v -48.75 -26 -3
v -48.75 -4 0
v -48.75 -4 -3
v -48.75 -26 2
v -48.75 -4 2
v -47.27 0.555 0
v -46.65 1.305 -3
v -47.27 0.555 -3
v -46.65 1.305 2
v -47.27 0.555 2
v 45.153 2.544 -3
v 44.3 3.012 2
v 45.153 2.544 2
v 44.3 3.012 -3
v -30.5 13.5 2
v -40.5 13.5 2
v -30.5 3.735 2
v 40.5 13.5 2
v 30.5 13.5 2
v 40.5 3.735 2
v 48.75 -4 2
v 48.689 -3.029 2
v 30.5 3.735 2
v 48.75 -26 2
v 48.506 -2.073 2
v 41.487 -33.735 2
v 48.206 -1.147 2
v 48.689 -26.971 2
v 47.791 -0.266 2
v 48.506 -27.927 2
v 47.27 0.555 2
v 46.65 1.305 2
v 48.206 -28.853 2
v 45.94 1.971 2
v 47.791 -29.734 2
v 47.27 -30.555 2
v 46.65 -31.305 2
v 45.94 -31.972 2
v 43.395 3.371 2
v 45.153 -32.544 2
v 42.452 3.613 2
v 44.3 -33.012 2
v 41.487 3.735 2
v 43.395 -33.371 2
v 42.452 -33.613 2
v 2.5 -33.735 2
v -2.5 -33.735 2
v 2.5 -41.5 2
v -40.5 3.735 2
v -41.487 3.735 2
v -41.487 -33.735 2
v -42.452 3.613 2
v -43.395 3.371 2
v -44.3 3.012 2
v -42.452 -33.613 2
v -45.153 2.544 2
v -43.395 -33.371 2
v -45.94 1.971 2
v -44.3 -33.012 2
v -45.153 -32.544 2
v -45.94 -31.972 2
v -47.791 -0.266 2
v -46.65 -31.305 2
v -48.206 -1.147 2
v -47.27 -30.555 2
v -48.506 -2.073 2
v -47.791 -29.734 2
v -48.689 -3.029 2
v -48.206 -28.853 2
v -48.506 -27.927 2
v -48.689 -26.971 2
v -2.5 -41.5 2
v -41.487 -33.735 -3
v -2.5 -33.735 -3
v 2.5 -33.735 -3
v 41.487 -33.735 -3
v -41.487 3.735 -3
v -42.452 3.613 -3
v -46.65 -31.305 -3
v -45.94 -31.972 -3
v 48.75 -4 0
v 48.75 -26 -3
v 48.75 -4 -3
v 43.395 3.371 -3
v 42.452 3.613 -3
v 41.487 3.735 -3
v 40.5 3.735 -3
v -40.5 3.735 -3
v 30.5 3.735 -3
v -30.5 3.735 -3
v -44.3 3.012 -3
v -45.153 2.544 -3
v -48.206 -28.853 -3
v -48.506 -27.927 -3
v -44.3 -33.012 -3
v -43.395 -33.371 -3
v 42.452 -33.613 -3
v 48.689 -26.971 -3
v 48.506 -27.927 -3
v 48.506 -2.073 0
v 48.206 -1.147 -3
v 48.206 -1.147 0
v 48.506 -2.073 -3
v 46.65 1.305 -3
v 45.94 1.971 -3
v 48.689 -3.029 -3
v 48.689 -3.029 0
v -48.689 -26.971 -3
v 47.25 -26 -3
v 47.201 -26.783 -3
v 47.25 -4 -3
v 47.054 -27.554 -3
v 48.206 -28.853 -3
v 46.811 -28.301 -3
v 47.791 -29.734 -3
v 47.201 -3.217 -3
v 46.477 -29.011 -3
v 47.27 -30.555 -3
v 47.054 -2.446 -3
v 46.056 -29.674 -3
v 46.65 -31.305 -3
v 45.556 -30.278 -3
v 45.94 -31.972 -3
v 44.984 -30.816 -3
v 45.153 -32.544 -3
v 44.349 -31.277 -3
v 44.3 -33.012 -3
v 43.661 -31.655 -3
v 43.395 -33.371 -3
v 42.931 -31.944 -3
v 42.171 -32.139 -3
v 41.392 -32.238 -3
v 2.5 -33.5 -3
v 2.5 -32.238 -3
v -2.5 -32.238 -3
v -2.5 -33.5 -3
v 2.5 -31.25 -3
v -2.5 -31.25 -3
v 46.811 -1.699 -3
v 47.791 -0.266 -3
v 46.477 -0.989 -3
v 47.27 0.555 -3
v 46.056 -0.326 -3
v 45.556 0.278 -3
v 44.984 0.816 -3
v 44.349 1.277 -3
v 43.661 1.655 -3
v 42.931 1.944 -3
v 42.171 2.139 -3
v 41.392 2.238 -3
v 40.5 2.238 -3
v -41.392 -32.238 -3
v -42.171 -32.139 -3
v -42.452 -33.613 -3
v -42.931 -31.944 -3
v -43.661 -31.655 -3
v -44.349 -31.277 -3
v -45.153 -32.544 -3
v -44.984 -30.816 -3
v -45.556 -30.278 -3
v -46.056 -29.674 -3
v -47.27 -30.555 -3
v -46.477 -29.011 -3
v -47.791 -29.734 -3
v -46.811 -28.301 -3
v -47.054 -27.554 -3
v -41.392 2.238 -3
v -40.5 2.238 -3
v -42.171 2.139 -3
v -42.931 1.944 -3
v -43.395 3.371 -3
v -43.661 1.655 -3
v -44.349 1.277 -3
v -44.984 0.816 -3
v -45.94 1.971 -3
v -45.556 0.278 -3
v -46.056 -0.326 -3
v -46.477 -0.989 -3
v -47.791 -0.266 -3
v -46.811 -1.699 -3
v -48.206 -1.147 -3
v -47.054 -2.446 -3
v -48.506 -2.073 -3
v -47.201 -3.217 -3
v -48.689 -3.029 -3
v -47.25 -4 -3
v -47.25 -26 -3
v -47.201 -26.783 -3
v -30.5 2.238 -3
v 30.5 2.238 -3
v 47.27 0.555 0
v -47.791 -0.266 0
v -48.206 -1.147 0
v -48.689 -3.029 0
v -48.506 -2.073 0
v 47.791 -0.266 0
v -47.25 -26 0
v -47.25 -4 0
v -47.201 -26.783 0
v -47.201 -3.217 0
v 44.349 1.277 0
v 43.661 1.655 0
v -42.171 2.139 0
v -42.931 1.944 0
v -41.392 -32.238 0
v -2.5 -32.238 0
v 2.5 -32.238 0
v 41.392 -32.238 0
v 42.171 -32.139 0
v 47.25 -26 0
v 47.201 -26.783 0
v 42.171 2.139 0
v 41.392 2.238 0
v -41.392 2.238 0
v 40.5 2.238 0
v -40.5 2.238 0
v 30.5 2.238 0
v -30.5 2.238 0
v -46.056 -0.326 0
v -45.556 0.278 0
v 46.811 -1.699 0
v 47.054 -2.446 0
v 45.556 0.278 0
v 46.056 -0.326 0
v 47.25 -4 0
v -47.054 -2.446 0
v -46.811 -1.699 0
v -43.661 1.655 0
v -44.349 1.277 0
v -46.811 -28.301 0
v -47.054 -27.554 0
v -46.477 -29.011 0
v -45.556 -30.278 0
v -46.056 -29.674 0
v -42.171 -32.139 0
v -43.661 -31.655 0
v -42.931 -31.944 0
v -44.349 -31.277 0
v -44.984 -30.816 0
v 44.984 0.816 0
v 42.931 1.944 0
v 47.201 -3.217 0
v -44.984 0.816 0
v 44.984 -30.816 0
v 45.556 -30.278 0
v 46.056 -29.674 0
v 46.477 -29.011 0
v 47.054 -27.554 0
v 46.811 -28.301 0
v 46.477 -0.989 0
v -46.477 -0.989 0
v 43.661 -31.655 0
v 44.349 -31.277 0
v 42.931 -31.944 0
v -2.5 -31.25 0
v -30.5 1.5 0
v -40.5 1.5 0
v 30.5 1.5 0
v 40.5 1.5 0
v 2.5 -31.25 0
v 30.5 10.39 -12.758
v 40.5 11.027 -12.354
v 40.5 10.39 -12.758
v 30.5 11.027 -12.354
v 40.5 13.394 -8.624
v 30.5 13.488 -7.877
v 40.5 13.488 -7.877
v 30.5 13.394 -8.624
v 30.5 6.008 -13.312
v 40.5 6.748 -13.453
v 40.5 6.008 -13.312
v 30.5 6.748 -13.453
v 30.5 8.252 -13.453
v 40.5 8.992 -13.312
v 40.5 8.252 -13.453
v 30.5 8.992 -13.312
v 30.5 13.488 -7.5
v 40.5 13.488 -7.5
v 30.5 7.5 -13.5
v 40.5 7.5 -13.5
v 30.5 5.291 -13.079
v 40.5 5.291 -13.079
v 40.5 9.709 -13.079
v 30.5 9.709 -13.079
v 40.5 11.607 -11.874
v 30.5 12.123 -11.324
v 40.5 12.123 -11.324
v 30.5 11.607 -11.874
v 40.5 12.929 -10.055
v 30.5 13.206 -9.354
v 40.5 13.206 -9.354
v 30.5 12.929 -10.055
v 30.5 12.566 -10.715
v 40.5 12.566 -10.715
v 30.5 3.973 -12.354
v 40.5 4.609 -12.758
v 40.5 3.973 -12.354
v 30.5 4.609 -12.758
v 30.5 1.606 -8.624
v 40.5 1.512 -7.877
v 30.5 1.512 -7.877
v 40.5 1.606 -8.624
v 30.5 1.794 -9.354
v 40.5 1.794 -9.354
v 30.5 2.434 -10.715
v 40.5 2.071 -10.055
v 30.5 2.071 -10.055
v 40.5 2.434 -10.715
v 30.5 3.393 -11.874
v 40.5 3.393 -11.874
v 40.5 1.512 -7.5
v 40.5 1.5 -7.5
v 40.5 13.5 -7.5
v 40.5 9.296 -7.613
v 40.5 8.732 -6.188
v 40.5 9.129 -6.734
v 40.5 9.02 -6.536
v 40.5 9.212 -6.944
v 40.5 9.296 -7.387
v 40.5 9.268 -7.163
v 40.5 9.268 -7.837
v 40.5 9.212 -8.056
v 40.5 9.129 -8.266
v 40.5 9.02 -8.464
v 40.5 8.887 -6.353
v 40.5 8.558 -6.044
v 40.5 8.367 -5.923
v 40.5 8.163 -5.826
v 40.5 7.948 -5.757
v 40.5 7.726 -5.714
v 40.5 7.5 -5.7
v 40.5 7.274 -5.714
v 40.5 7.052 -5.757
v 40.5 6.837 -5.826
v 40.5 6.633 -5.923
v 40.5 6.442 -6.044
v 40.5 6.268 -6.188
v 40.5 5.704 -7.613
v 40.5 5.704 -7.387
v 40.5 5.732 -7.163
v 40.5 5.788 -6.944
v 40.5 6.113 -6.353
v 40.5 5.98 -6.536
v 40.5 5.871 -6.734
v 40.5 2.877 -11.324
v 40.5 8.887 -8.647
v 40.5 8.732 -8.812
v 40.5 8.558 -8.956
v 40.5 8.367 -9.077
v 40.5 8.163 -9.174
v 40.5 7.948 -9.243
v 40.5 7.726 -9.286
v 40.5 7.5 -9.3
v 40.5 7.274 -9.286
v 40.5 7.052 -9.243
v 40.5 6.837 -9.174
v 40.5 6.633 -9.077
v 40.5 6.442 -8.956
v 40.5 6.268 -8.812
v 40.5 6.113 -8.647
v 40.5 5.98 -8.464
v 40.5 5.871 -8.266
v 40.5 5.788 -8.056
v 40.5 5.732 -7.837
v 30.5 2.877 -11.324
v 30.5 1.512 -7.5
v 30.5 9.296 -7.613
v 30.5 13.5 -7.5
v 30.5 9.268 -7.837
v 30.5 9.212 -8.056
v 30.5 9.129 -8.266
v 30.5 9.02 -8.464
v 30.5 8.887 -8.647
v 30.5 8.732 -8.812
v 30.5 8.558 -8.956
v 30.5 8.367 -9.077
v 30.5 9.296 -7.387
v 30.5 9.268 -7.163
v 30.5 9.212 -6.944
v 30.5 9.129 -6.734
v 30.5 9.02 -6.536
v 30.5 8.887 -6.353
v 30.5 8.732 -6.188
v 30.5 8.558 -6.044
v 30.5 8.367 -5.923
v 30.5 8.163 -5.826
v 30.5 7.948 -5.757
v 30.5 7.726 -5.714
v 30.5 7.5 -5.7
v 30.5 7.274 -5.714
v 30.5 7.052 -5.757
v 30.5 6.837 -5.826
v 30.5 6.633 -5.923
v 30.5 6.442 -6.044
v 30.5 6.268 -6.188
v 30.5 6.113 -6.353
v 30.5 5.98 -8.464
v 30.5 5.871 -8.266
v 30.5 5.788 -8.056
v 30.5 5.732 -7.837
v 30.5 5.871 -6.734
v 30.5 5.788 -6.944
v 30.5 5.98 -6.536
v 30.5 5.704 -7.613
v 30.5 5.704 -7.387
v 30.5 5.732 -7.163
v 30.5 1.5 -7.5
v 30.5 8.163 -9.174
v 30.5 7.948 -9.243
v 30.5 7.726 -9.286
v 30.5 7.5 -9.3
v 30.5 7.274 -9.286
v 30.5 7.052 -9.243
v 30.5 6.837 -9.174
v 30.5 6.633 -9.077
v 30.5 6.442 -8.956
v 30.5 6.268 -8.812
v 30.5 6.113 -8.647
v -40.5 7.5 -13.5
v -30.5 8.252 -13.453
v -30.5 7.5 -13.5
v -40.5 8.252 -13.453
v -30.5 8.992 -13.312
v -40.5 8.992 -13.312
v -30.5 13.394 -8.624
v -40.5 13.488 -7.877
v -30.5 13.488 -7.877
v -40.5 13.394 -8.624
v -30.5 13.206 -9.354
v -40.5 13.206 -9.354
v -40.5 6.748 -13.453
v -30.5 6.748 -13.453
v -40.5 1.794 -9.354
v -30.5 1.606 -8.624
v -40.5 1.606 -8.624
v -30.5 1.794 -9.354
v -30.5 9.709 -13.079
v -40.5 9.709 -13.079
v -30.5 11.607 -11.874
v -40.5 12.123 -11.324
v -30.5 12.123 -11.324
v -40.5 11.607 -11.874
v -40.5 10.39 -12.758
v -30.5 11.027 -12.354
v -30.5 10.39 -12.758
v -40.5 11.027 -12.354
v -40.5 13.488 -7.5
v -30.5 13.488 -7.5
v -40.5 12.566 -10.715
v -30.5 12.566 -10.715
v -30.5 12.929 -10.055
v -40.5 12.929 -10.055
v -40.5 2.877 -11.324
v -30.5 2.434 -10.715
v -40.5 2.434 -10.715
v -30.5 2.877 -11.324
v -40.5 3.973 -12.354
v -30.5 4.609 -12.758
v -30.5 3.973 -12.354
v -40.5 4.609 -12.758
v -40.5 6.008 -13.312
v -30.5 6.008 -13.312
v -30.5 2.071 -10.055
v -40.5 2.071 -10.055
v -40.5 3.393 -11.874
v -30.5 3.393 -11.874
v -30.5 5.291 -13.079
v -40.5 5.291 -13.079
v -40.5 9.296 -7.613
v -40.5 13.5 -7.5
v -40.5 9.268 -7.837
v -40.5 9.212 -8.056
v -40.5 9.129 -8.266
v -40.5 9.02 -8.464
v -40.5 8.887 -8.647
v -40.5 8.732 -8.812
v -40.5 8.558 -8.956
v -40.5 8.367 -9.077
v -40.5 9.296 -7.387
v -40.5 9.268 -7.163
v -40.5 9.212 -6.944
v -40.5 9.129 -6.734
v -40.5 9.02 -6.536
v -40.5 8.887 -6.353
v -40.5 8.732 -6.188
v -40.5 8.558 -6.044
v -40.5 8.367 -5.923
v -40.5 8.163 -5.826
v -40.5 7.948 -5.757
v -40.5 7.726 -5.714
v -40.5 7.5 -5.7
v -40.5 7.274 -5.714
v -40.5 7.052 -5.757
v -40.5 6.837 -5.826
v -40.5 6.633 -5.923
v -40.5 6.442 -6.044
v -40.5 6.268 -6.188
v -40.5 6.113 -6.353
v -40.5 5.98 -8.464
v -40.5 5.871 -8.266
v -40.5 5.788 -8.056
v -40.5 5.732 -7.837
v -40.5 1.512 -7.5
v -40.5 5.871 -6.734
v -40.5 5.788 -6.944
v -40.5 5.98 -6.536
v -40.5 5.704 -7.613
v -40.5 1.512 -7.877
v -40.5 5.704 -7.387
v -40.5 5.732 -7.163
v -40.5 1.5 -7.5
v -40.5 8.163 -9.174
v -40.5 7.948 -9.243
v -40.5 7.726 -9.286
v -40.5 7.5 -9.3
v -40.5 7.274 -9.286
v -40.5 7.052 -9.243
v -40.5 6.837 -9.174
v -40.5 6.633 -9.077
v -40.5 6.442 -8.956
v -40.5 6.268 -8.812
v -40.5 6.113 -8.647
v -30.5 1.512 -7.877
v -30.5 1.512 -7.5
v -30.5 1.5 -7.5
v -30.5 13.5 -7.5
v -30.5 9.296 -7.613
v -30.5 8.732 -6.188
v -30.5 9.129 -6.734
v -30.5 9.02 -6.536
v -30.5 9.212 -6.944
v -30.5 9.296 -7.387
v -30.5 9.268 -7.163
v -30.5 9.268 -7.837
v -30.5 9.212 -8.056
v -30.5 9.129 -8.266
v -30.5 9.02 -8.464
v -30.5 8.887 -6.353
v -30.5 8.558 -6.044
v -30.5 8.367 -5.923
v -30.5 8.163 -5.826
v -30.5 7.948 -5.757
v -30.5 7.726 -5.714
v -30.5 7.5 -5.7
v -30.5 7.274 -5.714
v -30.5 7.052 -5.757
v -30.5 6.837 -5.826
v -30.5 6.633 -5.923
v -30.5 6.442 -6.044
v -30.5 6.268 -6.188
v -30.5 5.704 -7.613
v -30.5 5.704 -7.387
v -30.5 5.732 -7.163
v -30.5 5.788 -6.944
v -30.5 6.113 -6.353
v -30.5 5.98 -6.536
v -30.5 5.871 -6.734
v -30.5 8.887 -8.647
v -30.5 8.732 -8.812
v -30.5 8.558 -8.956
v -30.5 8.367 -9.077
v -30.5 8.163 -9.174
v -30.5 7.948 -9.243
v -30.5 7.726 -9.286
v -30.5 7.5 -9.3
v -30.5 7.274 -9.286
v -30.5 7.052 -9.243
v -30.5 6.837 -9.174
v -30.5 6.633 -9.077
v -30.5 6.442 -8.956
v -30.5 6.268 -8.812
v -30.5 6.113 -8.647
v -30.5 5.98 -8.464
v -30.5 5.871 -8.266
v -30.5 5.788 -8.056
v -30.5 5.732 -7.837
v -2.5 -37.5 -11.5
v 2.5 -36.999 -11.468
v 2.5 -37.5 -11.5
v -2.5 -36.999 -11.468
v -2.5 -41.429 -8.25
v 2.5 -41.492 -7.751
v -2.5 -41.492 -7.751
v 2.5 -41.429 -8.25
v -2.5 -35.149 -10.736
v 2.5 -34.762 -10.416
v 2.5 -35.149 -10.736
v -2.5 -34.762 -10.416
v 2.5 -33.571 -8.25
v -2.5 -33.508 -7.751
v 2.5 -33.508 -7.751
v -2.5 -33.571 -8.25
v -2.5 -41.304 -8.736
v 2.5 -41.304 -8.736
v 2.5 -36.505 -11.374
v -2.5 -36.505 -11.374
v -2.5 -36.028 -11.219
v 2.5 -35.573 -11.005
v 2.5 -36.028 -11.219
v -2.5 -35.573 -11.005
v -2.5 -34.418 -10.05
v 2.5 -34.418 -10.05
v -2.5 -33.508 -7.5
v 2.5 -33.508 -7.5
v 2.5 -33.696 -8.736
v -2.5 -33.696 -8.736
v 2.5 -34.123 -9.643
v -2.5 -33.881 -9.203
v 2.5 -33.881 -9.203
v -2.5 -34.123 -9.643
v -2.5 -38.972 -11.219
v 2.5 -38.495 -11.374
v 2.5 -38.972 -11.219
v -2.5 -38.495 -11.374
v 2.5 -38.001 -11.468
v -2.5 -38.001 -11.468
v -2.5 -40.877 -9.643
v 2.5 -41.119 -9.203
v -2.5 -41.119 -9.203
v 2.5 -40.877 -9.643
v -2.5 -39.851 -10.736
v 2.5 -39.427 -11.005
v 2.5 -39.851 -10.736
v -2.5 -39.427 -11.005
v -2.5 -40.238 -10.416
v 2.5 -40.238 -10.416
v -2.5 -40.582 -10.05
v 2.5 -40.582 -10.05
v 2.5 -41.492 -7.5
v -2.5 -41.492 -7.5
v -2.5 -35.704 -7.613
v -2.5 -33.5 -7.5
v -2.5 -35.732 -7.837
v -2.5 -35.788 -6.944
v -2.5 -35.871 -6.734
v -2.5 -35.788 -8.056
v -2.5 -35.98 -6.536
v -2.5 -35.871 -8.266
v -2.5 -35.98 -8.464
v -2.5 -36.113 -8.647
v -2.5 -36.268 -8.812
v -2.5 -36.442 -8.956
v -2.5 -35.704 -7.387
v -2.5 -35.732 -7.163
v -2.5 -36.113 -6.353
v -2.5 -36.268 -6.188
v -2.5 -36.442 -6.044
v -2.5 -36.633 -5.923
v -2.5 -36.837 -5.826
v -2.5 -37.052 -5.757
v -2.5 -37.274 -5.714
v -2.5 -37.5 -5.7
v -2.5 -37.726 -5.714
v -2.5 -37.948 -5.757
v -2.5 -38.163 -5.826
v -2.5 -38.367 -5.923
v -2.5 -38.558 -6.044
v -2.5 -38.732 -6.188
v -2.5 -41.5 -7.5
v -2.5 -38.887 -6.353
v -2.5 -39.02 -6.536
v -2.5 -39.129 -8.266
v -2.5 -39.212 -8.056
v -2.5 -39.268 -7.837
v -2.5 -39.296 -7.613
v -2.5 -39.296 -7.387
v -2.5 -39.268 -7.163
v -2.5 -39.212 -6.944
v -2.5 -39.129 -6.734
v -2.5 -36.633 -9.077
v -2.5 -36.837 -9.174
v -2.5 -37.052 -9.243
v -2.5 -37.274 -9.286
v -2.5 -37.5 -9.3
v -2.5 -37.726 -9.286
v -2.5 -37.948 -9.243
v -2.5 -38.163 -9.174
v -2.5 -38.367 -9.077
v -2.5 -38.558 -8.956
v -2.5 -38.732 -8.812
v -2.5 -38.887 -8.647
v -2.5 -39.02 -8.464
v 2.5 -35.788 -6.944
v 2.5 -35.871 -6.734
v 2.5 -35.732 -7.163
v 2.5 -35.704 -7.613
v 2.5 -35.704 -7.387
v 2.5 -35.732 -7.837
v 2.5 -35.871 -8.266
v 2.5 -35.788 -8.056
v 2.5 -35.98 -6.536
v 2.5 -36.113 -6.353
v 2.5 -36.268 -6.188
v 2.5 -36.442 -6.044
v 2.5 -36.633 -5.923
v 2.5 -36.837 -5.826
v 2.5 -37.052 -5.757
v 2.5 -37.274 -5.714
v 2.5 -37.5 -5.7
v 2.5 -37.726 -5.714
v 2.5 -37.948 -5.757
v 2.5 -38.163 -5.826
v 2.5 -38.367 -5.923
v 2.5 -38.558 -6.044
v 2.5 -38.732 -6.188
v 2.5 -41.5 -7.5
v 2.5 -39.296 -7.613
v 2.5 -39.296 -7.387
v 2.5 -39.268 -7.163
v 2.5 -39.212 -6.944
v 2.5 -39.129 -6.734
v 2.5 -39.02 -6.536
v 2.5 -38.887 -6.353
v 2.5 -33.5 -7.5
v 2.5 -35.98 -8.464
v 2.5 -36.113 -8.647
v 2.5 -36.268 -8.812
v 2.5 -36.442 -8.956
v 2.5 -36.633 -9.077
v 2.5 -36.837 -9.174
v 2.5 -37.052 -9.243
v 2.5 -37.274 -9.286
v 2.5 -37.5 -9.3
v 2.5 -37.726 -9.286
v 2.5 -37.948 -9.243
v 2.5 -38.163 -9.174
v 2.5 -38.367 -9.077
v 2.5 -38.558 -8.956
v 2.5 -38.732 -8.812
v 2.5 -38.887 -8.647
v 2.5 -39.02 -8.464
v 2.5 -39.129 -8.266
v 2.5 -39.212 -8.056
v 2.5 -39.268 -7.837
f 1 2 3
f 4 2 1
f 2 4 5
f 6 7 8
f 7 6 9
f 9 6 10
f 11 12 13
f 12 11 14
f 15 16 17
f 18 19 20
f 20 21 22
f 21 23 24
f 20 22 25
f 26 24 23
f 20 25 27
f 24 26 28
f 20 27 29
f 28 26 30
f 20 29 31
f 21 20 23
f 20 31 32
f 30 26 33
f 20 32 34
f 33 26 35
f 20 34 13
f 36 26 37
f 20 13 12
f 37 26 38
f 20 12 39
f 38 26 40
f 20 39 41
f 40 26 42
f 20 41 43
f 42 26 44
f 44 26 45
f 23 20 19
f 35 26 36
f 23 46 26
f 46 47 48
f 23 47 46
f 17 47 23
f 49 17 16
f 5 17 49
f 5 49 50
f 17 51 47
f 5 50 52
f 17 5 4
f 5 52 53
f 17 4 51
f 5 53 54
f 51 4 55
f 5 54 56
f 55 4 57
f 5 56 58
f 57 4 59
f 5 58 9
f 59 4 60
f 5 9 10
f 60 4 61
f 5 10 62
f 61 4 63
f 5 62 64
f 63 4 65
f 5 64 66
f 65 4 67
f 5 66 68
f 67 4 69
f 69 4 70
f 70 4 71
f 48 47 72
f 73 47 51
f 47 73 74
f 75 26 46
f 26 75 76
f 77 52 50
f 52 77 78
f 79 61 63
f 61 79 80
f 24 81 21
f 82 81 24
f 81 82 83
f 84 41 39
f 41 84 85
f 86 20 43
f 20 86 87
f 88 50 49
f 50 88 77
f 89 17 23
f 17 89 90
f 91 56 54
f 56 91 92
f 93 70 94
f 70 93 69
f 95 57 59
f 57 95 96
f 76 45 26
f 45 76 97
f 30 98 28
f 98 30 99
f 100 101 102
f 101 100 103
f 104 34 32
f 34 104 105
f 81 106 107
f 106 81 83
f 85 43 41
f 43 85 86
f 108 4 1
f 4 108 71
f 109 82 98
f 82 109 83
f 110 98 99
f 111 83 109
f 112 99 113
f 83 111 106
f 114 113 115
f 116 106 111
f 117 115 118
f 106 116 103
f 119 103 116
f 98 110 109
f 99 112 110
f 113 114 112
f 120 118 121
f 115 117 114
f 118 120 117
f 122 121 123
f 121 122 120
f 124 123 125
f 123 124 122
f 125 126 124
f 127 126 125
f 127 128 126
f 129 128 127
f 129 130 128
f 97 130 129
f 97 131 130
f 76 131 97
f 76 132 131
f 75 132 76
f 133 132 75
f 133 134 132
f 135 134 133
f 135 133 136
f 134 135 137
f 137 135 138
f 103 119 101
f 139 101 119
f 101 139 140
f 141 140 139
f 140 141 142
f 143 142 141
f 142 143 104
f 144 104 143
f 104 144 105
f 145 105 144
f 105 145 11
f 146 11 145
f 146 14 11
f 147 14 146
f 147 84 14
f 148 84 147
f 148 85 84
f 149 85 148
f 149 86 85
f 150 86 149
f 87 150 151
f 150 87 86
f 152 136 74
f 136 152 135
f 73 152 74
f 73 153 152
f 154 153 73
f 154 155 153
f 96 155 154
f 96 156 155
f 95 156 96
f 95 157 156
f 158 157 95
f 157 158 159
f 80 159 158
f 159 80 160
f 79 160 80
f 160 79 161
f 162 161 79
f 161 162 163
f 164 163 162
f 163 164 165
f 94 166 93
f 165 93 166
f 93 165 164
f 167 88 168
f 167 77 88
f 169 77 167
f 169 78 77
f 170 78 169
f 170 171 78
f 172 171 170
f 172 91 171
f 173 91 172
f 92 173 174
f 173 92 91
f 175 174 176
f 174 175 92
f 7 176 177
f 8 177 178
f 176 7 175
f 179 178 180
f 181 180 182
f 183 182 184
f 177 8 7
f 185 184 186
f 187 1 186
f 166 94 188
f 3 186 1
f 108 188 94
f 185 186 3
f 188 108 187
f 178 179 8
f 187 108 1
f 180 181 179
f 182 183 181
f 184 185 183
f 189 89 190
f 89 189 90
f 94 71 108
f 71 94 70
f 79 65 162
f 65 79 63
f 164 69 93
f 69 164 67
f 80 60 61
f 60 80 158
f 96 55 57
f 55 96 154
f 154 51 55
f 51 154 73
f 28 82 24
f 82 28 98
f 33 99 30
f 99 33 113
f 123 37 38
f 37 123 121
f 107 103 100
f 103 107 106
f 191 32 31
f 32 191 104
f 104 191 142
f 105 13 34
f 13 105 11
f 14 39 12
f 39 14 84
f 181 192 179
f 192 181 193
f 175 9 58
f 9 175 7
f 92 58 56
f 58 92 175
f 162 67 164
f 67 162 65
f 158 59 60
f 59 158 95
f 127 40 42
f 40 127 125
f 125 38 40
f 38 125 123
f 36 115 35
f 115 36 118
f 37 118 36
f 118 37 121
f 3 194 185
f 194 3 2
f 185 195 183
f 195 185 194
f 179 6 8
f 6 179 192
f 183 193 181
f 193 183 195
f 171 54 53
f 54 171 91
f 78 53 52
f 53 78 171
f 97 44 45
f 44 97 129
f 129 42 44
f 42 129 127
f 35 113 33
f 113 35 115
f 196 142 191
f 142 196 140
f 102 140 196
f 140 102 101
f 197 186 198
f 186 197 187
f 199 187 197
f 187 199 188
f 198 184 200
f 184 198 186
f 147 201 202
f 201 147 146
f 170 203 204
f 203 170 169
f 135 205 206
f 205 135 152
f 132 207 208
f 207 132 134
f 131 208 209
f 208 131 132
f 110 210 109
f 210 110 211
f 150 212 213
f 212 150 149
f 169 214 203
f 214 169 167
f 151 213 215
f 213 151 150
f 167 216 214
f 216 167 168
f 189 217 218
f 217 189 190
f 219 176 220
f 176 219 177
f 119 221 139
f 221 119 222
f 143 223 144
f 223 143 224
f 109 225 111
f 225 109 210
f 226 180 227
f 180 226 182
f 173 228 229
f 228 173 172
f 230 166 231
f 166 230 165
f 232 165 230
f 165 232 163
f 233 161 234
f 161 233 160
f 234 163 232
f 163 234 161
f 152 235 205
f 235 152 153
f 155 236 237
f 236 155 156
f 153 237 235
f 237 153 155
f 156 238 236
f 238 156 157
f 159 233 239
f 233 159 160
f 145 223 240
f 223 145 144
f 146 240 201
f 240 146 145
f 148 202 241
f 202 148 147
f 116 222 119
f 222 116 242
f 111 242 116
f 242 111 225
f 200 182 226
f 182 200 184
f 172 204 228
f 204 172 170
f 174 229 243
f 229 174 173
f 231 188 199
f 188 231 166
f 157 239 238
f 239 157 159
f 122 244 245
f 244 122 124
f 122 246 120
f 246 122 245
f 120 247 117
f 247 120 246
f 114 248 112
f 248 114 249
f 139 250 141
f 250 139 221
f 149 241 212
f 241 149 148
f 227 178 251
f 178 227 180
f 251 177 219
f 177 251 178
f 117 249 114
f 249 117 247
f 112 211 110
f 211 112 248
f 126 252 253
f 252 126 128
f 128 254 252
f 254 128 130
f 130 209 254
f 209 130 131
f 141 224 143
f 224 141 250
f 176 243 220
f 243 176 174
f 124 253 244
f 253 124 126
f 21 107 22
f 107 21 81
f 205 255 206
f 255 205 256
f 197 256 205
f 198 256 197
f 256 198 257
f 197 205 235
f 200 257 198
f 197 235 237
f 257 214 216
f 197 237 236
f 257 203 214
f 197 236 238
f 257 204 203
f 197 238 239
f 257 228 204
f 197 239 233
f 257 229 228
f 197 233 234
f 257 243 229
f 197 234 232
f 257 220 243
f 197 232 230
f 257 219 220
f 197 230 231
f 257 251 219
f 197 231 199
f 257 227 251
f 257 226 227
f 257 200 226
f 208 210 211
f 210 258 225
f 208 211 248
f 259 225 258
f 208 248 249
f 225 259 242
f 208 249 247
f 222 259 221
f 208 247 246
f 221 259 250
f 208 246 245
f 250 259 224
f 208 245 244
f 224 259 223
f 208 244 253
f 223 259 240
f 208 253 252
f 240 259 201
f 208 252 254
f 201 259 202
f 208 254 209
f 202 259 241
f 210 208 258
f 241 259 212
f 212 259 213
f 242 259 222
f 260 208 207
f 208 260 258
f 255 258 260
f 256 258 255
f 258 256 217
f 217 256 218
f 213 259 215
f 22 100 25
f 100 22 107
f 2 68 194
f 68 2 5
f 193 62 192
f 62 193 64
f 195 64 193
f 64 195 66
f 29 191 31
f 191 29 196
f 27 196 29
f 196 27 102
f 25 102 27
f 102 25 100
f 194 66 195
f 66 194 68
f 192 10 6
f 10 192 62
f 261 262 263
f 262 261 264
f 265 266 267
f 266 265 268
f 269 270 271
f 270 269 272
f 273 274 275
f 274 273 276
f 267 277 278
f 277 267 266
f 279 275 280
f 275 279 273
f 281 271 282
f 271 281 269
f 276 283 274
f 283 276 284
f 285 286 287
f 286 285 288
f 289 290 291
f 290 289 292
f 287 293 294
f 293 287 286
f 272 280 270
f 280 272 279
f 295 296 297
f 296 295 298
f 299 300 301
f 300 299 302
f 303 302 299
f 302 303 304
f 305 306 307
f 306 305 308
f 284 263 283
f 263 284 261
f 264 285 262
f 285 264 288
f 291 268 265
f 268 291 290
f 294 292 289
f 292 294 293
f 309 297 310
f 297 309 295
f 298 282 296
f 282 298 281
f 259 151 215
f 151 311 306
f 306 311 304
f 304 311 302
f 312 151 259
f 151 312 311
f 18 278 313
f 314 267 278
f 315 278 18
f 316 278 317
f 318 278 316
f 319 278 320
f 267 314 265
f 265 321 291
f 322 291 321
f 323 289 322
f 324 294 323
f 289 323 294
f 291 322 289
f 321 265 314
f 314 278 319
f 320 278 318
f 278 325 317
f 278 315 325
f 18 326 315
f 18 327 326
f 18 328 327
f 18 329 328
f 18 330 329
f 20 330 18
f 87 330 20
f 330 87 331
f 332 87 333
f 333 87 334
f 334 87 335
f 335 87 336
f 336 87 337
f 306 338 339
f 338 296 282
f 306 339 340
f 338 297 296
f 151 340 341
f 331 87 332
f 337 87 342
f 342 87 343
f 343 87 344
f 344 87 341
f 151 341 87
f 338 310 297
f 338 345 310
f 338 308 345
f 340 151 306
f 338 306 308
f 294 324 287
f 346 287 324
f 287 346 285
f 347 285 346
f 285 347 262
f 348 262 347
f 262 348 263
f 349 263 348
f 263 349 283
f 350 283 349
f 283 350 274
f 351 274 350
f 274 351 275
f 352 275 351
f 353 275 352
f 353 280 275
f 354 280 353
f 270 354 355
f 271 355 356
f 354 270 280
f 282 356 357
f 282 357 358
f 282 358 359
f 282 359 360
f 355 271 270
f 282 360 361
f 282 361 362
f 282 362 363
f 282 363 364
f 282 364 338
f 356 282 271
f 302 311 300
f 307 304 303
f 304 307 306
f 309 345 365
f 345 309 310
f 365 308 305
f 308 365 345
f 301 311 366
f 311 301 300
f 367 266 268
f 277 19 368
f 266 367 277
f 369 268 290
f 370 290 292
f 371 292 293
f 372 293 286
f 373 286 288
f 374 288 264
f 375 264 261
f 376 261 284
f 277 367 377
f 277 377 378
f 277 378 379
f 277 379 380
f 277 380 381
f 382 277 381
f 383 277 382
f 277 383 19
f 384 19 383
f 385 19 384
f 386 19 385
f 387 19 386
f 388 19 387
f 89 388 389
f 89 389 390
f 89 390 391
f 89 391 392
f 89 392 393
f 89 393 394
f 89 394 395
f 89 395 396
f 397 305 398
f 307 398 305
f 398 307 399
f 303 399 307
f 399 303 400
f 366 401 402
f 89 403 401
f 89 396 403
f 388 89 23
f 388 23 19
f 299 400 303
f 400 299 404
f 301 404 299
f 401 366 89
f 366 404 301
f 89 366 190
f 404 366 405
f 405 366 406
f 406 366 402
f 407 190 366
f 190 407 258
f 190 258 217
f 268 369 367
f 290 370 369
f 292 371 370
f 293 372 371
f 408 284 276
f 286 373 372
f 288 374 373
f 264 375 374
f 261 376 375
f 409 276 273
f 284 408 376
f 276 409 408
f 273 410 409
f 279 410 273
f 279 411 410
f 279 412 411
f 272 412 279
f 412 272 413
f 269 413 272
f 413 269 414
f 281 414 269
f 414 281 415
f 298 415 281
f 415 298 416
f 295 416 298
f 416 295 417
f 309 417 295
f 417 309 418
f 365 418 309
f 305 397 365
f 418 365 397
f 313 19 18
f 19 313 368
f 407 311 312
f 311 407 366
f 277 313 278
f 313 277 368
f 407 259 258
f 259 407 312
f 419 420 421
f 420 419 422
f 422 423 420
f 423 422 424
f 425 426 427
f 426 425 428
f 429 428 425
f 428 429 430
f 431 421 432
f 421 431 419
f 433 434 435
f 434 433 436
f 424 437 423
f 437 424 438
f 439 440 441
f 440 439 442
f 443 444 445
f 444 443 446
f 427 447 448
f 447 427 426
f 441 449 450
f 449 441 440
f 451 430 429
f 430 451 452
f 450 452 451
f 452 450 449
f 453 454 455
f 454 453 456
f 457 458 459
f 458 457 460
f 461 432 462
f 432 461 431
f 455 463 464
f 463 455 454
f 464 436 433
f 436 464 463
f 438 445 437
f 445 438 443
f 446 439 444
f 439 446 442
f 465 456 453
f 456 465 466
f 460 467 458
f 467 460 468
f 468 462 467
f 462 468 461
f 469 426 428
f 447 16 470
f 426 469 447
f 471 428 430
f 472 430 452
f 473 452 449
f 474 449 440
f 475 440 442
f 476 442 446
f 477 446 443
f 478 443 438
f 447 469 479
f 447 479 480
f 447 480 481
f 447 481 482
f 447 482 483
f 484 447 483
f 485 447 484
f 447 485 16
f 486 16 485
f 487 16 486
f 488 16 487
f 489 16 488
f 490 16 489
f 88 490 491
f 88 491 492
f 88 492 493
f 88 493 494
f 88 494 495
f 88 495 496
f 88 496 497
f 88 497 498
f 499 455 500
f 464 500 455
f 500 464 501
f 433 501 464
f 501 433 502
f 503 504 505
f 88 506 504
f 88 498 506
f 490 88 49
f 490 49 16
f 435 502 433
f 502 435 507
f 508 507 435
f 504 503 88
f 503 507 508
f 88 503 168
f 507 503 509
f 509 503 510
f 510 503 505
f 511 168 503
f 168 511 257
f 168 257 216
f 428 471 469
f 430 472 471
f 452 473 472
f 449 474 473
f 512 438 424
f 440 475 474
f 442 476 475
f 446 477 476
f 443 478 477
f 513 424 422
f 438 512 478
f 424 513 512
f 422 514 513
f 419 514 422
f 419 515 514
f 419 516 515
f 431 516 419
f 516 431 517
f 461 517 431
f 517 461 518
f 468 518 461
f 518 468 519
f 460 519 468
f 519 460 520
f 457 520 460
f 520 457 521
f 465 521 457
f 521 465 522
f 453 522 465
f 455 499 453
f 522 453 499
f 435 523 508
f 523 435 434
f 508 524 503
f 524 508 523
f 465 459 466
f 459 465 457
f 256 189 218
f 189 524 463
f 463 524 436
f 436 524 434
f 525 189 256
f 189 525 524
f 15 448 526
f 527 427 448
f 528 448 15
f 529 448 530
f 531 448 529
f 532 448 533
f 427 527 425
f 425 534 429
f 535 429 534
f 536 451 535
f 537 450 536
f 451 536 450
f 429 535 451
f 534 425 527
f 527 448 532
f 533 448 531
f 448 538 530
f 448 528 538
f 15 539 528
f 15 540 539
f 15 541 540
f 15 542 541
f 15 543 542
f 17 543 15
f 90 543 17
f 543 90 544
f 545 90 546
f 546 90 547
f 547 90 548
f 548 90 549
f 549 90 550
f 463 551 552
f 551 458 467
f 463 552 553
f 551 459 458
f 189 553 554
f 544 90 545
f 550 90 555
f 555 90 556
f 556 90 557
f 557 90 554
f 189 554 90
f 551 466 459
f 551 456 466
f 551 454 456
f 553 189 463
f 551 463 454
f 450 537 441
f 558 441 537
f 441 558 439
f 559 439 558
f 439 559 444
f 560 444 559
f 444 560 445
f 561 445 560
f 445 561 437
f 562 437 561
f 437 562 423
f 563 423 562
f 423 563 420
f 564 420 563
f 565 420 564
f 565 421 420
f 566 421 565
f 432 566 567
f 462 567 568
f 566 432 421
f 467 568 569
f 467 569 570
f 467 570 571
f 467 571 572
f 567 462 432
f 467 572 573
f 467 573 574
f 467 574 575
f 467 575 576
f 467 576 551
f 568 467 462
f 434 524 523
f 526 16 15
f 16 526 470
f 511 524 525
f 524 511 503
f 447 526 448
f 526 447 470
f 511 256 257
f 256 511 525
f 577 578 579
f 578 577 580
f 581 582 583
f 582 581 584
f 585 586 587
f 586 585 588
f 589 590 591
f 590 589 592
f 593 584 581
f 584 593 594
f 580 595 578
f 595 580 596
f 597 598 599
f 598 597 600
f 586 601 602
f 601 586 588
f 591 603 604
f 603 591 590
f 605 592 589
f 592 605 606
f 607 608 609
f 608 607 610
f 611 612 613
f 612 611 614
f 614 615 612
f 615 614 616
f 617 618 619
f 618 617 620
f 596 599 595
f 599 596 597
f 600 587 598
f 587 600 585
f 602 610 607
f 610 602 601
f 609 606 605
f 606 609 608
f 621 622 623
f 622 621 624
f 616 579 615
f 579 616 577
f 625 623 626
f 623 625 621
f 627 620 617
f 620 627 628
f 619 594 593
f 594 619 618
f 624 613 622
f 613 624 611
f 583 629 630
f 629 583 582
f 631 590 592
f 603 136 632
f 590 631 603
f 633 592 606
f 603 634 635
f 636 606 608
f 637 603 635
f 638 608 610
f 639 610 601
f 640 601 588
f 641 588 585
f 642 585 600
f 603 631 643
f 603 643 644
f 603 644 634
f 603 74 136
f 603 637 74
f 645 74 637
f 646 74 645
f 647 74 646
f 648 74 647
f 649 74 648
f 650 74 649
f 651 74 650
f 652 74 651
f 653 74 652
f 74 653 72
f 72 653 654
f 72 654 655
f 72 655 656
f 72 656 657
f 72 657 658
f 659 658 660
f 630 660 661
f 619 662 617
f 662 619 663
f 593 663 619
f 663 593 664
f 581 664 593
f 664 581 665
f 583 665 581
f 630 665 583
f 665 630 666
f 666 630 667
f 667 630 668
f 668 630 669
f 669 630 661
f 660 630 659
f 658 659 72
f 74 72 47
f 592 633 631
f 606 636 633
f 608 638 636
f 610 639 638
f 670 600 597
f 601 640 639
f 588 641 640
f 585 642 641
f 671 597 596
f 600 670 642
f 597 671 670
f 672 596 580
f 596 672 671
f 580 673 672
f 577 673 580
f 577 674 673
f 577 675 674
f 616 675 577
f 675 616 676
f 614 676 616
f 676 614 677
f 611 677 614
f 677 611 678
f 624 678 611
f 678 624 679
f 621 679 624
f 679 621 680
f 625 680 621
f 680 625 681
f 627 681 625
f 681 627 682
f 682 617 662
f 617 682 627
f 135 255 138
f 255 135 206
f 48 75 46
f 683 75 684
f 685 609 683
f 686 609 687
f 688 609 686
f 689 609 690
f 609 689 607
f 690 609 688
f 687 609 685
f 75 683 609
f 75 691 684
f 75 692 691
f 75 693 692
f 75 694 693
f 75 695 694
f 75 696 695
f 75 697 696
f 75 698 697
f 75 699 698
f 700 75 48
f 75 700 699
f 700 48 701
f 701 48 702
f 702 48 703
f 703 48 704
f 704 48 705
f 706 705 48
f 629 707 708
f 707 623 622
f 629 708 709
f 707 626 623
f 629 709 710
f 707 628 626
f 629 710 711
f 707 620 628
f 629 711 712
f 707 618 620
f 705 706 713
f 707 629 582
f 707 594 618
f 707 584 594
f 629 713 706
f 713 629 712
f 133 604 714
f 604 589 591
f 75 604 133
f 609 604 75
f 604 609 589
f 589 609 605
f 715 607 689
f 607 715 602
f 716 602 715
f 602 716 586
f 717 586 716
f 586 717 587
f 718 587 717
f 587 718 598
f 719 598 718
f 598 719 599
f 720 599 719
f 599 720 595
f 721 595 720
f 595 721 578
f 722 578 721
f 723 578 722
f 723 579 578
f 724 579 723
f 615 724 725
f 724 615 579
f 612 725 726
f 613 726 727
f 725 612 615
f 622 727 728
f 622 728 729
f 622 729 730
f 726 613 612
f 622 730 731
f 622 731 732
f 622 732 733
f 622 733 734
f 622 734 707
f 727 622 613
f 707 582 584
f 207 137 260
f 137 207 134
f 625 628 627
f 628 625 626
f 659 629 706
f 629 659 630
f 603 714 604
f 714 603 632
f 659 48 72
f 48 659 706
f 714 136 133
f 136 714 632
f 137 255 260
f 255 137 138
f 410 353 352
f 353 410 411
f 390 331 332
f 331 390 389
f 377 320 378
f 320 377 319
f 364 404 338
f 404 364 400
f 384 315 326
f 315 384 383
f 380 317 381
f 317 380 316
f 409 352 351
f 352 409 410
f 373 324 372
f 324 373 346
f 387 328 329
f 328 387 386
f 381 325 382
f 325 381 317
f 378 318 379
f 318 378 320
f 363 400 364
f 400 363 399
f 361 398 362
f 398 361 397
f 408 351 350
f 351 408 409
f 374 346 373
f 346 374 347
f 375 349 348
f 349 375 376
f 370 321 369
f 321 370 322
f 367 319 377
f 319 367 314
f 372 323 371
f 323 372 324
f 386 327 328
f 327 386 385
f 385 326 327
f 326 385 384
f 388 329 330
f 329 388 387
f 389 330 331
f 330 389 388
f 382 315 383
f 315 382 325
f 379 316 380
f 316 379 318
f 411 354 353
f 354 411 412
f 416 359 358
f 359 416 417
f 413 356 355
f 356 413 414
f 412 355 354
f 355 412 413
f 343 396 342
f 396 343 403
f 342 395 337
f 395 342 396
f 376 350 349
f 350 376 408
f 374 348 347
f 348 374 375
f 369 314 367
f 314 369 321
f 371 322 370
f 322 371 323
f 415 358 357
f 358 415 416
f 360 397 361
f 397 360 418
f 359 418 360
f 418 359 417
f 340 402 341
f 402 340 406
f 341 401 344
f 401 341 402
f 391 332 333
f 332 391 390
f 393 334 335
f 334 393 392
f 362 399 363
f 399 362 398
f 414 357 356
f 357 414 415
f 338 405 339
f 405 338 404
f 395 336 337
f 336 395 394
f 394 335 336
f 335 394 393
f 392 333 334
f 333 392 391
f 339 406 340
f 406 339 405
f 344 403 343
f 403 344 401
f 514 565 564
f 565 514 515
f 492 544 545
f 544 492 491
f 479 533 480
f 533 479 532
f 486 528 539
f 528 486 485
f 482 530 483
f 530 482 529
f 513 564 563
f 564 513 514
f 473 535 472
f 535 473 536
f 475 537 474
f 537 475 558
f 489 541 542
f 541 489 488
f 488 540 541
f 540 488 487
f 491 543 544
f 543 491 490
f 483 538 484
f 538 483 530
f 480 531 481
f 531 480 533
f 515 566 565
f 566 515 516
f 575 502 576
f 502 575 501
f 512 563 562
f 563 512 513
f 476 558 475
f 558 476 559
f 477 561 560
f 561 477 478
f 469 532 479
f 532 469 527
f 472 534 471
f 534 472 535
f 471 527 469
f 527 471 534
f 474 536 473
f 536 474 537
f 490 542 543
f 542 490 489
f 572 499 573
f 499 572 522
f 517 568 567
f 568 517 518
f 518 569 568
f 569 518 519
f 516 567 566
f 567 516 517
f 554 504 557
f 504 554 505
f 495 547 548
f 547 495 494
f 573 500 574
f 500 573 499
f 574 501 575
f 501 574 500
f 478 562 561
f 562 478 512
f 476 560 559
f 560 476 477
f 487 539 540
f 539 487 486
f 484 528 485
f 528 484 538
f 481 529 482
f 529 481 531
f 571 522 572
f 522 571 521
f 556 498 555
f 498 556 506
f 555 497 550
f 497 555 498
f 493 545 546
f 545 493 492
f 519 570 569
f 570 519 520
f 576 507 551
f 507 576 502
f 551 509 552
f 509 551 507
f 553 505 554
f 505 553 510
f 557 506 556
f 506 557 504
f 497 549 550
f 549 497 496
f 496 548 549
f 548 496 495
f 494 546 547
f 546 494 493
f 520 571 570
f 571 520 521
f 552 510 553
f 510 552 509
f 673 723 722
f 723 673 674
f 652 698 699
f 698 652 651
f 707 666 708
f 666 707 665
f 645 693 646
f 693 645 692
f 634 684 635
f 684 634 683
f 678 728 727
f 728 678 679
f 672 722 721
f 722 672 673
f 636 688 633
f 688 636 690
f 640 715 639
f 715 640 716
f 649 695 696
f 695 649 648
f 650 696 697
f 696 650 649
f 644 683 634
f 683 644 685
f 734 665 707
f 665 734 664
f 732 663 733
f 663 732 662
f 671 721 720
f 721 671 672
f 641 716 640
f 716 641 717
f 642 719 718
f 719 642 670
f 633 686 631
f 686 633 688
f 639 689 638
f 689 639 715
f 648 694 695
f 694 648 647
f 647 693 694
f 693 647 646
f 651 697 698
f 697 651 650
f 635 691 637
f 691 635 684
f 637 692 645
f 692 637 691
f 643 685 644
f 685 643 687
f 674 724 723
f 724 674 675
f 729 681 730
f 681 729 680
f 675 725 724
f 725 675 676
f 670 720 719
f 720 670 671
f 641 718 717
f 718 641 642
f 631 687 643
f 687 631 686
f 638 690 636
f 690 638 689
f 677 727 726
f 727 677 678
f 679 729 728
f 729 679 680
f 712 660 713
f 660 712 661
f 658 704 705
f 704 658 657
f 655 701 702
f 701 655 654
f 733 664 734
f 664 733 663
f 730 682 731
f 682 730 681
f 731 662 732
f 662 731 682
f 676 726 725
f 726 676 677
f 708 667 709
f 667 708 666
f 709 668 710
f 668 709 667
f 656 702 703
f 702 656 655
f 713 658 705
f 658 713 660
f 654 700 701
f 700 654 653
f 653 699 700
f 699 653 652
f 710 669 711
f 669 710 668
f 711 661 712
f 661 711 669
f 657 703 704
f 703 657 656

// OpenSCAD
$fn = 50;


difference() {
	union() {
		translate(v = [0, -15.0000000000, -3]) {
			rotate(a = [0, 0, 0]) {
				difference() {
					union() {
						hull() {
							translate(v = [-41.0000000000, 11.0000000000, 0]) {
								cylinder(h = 5, r = 7.7500000000);
							}
							translate(v = [41.0000000000, 11.0000000000, 0]) {
								cylinder(h = 5, r = 7.7500000000);
							}
							translate(v = [-41.0000000000, -11.0000000000, 0]) {
								cylinder(h = 5, r = 7.7500000000);
							}
							translate(v = [41.0000000000, -11.0000000000, 0]) {
								cylinder(h = 5, r = 7.7500000000);
							}
						}
					}
					union() {
						hull() {
							translate(v = [-41.0000000000, 11.0000000000, 0]) {
								cylinder(h = 5, r = 6.2500000000);
							}
							translate(v = [41.0000000000, 11.0000000000, 0]) {
								cylinder(h = 5, r = 6.2500000000);
							}
							translate(v = [-41.0000000000, -11.0000000000, 0]) {
								cylinder(h = 5, r = 6.2500000000);
							}
							translate(v = [41.0000000000, -11.0000000000, 0]) {
								cylinder(h = 5, r = 6.2500000000);
							}
						}
					}
				}
			}
		}
		translate(v = [0, -15.0000000000, 0]) {
			hull() {
				translate(v = [-41.0000000000, 11.0000000000, 0]) {
					cylinder(h = 2, r = 7.7500000000);
				}
				translate(v = [41.0000000000, 11.0000000000, 0]) {
					cylinder(h = 2, r = 7.7500000000);
				}
				translate(v = [-41.0000000000, -11.0000000000, 0]) {
					cylinder(h = 2, r = 7.7500000000);
				}
				translate(v = [41.0000000000, -11.0000000000, 0]) {
					cylinder(h = 2, r = 7.7500000000);
				}
			}
		}
		translate(v = [30.5000000000, 7.5000000000, -7.5000000000]) {
			rotate(a = [0, 90, 0]) {
				cylinder(h = 10, r = 6.0000000000);
			}
		}
		translate(v = [30.5000000000, 1.5000000000, -7.5000000000]) {
			cube(size = [10, 12, 7.5000000000]);
		}
		translate(v = [30.5000000000, -15.0000000000, 0.0000000000]) {
			cube(size = [10, 28.5000000000, 2]);
		}
		translate(v = [-40.5000000000, 7.5000000000, -7.5000000000]) {
			rotate(a = [0, 90, 0]) {
				cylinder(h = 10, r = 6.0000000000);
			}
		}
		translate(v = [-40.5000000000, 1.5000000000, -7.5000000000]) {
			cube(size = [10, 12, 7.5000000000]);
		}
		translate(v = [-40.5000000000, -15.0000000000, 0.0000000000]) {
			cube(size = [10, 28.5000000000, 2]);
		}
		translate(v = [-2.5000000000, -37.5000000000, -7.5000000000]) {
			rotate(a = [0, 90, 0]) {
				cylinder(h = 5, r = 4.0000000000);
			}
		}
		translate(v = [-2.5000000000, -41.5000000000, -7.5000000000]) {
			cube(size = [5, 8, 7.5000000000]);
		}
		translate(v = [-2.5000000000, -41.5000000000, -3.0000000000]) {
			cube(size = [5, 10.2500000000, 5]);
		}
	}
	union() {
		translate(v = [30.5000000000, 7.5000000000, -7.5000000000]) {
			rotate(a = [0, 90, 0]) {
				cylinder(h = 10, r = 1.8000000000);
			}
		}
		translate(v = [-40.5000000000, 7.5000000000, -7.5000000000]) {
			rotate(a = [0, 90, 0]) {
				cylinder(h = 10, r = 1.8000000000);
			}
		}
		translate(v = [-5.0000000000, -37.5000000000, -7.5000000000]) {
			rotate(a = [0, 90, 0]) {
				cylinder(h = 10, r = 1.8000000000);
			}
		}
	}
}
